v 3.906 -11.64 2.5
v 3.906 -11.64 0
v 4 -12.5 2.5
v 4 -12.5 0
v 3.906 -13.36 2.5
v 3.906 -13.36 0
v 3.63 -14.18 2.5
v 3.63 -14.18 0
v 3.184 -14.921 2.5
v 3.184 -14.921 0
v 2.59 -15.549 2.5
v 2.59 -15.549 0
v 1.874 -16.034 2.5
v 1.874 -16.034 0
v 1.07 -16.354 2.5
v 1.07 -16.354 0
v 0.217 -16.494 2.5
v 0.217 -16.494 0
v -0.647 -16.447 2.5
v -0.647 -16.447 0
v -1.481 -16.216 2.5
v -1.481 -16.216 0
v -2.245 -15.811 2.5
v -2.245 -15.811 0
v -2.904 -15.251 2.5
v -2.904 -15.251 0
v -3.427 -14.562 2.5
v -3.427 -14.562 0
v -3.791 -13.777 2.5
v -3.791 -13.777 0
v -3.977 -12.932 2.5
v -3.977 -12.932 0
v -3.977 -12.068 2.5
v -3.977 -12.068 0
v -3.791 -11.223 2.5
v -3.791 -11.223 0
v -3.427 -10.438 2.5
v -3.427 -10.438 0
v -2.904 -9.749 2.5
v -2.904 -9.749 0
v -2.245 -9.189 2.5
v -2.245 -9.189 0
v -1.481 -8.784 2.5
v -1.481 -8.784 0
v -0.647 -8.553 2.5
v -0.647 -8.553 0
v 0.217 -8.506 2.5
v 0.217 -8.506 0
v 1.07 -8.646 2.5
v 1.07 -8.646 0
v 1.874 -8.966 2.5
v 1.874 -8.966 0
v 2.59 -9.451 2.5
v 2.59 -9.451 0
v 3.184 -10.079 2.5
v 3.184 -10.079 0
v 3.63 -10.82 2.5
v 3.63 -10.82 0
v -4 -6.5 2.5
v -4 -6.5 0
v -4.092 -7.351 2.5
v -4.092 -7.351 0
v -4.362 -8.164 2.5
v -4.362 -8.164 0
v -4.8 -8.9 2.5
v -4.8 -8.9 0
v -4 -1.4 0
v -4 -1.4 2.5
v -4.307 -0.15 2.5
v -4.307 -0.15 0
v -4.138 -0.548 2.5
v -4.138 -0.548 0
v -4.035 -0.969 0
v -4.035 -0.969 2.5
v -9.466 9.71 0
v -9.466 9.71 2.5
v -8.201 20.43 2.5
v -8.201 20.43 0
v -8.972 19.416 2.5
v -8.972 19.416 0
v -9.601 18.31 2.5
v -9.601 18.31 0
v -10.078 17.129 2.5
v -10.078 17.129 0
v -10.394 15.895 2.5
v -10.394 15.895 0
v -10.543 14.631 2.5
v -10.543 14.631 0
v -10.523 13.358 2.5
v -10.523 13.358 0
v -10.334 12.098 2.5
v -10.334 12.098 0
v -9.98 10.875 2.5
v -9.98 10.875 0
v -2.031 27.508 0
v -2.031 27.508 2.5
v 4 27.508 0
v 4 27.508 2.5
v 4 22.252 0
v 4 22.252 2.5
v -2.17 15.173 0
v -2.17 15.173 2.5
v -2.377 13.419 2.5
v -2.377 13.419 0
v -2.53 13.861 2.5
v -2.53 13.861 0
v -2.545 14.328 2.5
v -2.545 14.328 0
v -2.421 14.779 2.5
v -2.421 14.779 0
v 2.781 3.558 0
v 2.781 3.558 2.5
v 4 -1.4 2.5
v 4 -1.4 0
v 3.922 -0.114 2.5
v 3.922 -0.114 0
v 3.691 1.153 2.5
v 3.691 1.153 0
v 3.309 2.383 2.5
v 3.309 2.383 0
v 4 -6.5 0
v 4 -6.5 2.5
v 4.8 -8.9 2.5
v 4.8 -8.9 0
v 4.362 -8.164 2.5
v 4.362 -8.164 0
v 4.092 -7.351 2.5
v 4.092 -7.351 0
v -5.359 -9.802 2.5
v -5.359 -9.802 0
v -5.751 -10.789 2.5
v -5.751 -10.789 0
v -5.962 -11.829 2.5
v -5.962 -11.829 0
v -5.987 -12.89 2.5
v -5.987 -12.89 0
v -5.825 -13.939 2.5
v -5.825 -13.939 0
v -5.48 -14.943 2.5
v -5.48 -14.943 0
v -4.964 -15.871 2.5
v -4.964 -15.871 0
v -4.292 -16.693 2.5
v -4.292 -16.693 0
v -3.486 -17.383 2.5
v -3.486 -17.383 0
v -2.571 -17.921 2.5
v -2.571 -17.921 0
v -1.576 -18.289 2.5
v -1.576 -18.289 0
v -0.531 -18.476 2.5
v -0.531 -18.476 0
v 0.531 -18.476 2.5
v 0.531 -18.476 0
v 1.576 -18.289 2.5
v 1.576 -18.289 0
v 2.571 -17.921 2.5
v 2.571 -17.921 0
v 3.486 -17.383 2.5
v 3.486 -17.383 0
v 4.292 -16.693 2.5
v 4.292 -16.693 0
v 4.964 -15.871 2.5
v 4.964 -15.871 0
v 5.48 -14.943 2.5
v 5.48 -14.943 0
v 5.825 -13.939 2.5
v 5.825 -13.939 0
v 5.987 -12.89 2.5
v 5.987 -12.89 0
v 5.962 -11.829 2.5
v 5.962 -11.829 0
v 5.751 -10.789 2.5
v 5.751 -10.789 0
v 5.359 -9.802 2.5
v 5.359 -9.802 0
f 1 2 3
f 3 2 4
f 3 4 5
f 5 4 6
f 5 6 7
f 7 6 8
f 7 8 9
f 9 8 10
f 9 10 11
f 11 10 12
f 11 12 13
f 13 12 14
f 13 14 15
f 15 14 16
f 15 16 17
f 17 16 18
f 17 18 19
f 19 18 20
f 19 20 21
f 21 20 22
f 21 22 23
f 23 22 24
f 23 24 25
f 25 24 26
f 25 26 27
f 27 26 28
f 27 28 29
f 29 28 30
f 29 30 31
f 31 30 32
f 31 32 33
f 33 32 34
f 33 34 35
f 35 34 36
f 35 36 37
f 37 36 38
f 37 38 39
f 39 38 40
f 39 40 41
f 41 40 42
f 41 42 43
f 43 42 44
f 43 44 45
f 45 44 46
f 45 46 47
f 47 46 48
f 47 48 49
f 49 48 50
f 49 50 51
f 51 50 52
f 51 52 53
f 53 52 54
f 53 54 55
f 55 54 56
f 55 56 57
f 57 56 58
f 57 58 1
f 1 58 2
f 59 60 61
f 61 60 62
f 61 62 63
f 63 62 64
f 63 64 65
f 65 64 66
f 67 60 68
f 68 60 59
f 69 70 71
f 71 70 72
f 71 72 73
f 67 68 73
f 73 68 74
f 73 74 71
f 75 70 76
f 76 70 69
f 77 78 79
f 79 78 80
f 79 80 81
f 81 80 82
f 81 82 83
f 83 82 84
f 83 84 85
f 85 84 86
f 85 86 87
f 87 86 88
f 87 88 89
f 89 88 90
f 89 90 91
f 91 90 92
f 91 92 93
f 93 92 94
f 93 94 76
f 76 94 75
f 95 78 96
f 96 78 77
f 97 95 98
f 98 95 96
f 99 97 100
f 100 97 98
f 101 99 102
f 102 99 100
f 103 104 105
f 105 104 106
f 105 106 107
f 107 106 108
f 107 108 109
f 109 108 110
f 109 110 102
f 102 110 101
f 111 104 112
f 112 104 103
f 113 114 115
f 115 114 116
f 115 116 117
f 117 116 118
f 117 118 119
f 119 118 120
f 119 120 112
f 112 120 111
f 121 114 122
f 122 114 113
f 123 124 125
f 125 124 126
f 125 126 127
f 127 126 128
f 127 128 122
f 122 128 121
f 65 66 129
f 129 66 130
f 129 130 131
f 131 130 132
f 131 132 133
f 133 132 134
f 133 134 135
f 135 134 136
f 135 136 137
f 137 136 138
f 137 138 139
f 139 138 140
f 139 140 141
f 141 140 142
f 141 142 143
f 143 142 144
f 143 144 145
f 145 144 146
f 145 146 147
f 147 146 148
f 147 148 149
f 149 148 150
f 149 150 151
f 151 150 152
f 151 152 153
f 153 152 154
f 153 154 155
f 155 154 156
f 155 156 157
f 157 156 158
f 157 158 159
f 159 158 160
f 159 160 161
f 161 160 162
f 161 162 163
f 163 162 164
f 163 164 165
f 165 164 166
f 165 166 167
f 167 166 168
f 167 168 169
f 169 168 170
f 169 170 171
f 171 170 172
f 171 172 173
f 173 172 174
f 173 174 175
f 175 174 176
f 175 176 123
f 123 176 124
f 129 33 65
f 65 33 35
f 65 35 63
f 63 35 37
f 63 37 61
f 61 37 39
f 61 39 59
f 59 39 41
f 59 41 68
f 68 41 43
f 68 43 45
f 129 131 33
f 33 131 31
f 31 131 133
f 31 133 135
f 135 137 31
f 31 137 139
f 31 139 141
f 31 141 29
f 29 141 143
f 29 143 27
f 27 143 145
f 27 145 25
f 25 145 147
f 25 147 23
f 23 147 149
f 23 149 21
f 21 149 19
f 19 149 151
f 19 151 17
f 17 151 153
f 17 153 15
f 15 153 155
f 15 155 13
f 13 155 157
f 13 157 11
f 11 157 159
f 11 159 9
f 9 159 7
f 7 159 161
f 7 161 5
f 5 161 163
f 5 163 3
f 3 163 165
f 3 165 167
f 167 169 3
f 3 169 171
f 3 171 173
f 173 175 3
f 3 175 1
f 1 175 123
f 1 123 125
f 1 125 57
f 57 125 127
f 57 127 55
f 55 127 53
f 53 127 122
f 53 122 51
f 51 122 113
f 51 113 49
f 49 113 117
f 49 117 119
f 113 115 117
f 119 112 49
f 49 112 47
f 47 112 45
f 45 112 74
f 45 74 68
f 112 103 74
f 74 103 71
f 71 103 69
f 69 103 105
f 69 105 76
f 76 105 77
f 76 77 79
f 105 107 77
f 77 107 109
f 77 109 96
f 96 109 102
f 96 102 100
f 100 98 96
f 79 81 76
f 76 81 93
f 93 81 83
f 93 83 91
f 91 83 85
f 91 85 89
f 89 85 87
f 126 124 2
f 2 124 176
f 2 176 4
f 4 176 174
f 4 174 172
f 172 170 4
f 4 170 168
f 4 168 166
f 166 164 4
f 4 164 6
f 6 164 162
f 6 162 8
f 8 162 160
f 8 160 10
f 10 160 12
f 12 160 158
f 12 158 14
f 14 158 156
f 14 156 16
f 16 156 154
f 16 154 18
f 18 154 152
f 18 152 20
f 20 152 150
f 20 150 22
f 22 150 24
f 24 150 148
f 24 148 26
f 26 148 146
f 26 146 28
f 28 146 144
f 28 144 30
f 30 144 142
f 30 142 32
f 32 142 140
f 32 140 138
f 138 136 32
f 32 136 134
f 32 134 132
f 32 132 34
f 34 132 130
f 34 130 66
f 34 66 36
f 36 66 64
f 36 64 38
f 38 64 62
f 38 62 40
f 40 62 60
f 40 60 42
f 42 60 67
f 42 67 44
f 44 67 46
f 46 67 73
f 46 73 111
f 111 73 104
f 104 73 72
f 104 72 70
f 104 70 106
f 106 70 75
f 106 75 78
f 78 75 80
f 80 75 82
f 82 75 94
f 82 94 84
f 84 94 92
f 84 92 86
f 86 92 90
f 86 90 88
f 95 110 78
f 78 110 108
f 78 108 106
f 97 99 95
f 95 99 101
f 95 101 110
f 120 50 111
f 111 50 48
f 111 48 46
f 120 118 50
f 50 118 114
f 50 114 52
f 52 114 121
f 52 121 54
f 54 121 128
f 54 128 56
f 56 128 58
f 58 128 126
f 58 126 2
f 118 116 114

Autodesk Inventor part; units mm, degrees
ref_plane "YZ Plane" through (0, 0, 0) normal (1, 0, 0) x (0, 1, 0)
ref_plane "XZ Plane" through (0, 0, 0) normal (0, 1, 0) x (-1, 0, 0)
ref_plane "XY Plane" through (0, 0, 0) normal (0, 0, 1) x (1, 0, 0)
sketch "Sketch1" plane through (0, 0, 0) normal (0, 0, 1) x (1, 0, 0)
  line L0 (0, 0) -> (2.8584, 0)
  line L1 (0, 0) -> (0, 3.8884)
  circle A0 centre (0, -12.5) radius 4
  arc A1 (-4.8, -8.9) -> (4.8, -8.9) centre (0, -12.5) ccw
  line L2 (4, -1.4002) -> (4, -6.5)
  line L3 (-9.4657, 9.7101) -> (-4.3072, -0.1501)
  arc A2 (-4, -1.4002) -> (-4.3072, -0.1501) centre (-6.6968, -1.4002) ccw
  line L4 (-4, -1.4002) -> (-4, -6.5)
  line L5 (4, -6.5) -> (4, -1.4002)
  arc A3 (4, -1.4002) -> (2.7813, 3.5584) centre (-6.6968, -1.4002) ccw
  line L6 (2.7813, 3.5584) -> (-2.3771, 13.4186)
  arc A4 (-2.17, 15.1733) -> (-2.3771, 13.4186) centre (-0.9897, 14.1444) ccw
  line L7 (-2.17, 15.1733) -> (4, 22.2516)
  line L8 (4, 22.2516) -> (4, 27.5083)
  line L9 (4, 27.5083) -> (-2.0305, 27.5083)
  line L10 (-2.0305, 27.5083) -> (-8.2005, 20.4299)
  arc A5 (-8.2005, 20.4299) -> (-9.4657, 9.7101) centre (-0.9897, 14.1444) ccw
  line L11 (-4, -6.5) -> (-4, -1.4002)
  arc A6 (-4.8, -8.9) -> (-4, -6.5) centre (-8, -6.5) ccw
  arc A7 (4, -6.5) -> (4.8, -8.9) centre (8, -6.5) ccw
  dimension "d1" = 8
  dimension "d16" = 8
  dimension "d17" = 8
  dimension "d18" = 25
  dimension "d19" = 4
  dimension "d20" = 2
  dimension "d21" = 2.8003
  dimension "d22" = 13.3936
  dimension "d23" = 1.9794
  dimension "d24" = 28.2888
  dimension "d25" = 0
extrude "Extrusion1" add sketch "Sketch1" along normal blind 2.5
properties part number "gripper" material "Polystyrene"
